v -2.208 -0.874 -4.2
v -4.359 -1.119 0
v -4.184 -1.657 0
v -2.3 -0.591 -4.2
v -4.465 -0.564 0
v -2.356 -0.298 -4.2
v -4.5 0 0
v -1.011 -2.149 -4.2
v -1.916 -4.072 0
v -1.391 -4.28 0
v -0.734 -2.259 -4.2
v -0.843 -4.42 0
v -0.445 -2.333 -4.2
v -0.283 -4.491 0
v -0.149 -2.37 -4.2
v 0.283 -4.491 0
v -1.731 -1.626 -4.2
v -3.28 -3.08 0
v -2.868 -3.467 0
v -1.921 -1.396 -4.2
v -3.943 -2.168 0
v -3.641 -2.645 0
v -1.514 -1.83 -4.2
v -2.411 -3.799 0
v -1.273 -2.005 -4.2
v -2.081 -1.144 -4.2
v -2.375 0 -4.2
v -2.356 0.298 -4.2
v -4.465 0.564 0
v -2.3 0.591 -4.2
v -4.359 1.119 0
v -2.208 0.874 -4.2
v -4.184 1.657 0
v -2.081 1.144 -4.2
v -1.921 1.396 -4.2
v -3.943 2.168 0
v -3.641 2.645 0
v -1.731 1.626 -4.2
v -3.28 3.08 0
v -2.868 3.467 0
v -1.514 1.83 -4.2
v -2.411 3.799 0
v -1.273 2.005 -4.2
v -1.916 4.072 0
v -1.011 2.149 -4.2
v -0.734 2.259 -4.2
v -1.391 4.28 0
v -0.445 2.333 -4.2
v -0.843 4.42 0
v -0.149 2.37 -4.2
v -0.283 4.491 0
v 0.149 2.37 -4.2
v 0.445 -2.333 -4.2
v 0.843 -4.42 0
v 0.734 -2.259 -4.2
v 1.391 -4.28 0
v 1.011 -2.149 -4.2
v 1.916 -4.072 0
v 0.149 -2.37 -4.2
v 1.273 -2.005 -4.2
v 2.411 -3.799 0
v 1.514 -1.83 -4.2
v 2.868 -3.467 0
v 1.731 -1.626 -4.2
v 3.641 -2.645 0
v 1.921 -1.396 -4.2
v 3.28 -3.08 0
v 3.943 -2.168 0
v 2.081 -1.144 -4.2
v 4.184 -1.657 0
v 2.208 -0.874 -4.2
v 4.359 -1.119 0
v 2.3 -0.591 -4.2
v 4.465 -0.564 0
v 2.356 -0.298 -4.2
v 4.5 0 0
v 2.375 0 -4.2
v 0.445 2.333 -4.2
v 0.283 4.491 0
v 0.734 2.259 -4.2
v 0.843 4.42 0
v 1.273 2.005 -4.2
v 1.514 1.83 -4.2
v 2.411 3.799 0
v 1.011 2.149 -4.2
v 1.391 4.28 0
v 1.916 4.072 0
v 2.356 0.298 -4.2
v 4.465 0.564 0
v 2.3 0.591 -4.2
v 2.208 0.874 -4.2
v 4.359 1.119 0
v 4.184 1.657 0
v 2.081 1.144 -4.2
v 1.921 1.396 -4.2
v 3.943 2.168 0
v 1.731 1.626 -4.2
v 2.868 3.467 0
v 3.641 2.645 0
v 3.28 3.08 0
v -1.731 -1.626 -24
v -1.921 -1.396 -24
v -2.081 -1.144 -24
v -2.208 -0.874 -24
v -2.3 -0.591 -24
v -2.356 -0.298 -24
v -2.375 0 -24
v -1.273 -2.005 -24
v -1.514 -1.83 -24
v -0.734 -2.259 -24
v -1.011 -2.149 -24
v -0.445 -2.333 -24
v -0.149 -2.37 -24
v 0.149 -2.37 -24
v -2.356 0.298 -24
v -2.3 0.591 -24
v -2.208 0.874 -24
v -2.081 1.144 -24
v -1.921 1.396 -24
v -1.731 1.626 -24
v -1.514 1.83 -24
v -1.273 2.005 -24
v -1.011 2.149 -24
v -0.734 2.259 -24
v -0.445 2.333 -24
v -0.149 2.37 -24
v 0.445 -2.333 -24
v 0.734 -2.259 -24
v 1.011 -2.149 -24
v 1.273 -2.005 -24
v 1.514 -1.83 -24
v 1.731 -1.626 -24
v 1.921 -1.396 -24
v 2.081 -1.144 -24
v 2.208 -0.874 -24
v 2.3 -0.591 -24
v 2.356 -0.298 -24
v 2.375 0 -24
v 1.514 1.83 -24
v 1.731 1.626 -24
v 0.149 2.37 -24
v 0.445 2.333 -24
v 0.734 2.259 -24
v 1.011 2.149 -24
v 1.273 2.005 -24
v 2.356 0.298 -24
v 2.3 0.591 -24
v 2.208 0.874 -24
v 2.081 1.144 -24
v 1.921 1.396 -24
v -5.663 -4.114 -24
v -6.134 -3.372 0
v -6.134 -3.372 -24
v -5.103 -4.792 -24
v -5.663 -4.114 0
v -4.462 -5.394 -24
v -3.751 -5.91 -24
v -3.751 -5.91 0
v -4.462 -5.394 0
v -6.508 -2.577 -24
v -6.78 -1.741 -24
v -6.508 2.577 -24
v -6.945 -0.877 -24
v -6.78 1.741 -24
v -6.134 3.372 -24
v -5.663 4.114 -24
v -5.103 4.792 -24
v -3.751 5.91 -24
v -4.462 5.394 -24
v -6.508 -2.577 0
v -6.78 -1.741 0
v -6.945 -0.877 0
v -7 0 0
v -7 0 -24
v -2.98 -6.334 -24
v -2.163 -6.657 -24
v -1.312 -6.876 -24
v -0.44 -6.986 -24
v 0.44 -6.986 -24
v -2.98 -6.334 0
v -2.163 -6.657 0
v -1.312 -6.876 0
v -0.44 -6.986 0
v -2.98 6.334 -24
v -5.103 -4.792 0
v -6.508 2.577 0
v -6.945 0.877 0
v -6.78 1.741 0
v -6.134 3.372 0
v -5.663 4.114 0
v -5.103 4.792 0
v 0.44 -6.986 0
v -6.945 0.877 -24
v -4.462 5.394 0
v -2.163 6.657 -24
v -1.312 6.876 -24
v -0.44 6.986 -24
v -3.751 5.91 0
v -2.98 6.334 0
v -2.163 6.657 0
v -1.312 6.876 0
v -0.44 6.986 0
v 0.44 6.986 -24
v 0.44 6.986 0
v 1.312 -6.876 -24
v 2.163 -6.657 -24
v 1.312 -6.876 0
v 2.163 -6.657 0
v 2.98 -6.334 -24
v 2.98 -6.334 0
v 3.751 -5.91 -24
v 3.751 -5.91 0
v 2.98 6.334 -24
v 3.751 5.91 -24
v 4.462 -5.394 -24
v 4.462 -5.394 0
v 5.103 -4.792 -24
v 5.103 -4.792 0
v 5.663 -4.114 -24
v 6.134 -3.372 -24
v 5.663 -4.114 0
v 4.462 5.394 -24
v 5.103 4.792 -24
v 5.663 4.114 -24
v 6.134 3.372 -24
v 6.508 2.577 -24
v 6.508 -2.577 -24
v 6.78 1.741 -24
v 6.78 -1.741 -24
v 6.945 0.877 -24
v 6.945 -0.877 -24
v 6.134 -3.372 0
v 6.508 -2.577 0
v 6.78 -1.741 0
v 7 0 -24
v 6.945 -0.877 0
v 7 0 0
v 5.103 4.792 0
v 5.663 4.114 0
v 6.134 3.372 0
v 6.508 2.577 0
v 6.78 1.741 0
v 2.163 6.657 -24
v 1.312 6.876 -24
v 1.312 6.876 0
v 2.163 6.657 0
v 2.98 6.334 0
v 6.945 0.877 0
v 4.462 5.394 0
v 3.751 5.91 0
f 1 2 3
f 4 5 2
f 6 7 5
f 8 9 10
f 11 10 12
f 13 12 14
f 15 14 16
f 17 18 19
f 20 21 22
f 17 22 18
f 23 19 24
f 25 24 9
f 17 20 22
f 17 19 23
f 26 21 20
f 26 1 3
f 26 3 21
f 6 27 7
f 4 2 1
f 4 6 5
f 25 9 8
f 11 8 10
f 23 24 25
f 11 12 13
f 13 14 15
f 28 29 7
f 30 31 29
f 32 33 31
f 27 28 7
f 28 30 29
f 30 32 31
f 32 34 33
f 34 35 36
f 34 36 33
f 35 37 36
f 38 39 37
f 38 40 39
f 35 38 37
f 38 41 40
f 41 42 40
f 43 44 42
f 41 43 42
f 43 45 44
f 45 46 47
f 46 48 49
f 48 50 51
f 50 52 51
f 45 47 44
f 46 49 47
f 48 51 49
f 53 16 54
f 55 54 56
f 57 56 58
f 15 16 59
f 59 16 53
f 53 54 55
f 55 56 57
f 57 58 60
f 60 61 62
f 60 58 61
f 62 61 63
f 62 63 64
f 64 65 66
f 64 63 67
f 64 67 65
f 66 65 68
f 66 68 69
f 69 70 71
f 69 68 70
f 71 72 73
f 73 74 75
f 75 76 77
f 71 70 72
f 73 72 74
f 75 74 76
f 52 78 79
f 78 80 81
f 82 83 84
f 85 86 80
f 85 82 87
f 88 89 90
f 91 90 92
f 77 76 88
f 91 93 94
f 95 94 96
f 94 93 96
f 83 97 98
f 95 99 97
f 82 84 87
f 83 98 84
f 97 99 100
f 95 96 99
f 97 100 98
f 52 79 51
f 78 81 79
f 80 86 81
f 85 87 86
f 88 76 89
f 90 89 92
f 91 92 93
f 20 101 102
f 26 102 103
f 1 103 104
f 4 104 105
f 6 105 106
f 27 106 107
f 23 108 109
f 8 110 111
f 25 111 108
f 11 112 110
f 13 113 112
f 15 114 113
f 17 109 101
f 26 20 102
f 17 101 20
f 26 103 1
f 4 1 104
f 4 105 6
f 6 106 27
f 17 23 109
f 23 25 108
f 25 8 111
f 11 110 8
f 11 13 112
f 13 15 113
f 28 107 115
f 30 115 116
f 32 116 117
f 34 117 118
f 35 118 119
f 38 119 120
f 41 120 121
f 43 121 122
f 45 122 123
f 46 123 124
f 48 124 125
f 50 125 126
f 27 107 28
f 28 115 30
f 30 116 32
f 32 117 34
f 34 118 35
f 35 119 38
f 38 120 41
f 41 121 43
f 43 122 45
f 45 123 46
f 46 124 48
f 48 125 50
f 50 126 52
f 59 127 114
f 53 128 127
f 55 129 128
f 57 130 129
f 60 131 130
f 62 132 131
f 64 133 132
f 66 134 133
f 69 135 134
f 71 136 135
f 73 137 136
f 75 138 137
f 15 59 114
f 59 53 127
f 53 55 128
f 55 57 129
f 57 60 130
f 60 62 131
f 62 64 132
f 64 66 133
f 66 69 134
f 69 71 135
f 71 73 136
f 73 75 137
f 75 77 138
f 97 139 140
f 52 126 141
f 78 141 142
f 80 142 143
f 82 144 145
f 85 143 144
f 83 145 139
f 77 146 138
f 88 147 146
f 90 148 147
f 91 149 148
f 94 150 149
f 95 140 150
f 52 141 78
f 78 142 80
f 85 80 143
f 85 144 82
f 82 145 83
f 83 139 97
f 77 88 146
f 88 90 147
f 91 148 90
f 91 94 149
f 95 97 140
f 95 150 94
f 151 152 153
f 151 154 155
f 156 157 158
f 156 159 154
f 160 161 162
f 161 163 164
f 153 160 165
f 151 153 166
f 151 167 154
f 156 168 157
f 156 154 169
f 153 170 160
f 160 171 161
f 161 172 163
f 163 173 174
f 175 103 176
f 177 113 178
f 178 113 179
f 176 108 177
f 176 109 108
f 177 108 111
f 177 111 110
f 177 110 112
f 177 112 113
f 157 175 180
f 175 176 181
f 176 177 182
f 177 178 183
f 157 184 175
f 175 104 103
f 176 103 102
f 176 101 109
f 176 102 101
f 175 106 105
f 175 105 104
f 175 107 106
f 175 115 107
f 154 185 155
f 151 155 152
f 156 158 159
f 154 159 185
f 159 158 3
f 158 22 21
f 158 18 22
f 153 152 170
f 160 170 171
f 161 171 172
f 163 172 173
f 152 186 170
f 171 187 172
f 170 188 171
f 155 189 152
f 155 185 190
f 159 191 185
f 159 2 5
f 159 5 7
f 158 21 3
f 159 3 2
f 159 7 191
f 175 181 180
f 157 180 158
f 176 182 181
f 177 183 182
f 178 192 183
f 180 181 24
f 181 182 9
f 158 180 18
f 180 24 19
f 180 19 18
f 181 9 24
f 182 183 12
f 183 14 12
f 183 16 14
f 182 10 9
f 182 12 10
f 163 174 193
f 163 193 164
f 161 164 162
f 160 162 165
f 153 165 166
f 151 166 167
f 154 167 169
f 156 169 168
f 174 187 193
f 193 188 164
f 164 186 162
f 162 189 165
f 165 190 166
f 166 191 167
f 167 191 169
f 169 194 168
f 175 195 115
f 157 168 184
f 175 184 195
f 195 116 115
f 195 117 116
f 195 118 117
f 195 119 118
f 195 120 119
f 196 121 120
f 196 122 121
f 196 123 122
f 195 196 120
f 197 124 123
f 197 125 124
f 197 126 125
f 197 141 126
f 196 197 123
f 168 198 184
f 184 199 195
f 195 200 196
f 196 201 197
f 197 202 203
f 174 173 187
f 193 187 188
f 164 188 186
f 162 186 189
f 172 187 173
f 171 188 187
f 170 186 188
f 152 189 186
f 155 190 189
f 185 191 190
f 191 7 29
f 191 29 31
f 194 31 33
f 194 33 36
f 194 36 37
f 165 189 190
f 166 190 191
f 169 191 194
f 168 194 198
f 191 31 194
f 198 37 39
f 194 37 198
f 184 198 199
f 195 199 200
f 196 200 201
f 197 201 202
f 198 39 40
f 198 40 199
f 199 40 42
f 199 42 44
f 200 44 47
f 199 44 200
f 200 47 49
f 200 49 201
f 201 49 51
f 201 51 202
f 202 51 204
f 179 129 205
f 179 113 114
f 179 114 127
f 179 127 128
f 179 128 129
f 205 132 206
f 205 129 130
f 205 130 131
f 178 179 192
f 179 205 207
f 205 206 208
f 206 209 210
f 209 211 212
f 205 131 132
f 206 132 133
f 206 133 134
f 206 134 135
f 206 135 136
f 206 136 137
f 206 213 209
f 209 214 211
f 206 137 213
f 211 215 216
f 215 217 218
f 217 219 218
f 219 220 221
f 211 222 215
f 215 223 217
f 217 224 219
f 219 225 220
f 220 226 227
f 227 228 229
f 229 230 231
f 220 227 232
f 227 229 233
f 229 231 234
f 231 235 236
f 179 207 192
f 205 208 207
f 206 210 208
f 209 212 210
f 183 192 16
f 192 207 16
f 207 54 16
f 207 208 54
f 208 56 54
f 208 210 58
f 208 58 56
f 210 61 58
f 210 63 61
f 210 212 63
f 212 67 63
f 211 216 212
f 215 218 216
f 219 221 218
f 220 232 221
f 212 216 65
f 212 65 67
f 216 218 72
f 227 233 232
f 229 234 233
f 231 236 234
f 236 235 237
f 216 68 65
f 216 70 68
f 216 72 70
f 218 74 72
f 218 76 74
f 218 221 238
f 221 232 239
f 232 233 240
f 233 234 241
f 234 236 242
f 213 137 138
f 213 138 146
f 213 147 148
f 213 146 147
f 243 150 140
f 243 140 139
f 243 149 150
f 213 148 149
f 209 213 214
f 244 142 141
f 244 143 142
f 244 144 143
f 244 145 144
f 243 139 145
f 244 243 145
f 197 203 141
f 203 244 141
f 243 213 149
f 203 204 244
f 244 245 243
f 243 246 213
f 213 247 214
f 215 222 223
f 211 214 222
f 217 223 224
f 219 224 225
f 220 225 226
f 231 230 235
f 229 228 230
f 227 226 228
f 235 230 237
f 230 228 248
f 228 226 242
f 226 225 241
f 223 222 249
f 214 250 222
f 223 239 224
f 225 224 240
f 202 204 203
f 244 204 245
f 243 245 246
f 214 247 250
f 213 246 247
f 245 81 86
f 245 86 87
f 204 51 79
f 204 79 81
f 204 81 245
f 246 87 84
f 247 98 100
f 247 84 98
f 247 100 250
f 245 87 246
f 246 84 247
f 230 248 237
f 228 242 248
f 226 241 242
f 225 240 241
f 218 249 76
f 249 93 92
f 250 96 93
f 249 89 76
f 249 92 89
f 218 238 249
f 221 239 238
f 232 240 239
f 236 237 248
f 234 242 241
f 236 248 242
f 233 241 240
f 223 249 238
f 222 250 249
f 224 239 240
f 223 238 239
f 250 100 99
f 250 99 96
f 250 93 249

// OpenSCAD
$fn = 50;


difference() {
	union() {
		translate(v = [0, 0, -24.0000000000]) {
			cylinder(h = 24, r = 7.0000000000);
		}
	}
	union() {
		translate(v = [0, 0, 0]) {
			rotate(a = [0, 0, 0]) {
				difference() {
					union() {
						translate(v = [0, 0, -27.0000000000]) {
							cylinder(h = 27, r = 2.2500000000);
						}
						translate(v = [0, 0, -4.2000000000]) {
							cylinder(h = 4.2000000000, r1 = 2.3750000000, r2 = 4.5000000000);
						}
						translate(v = [0, 0, -27.0000000000]) {
							cylinder(h = 27, r = 2.3750000000);
						}
						translate(v = [0, 0, -27.0000000000]) {
							cylinder(h = 27, r = 2.2500000000);
						}
					}
					union();
				}
			}
		}
	}
}
